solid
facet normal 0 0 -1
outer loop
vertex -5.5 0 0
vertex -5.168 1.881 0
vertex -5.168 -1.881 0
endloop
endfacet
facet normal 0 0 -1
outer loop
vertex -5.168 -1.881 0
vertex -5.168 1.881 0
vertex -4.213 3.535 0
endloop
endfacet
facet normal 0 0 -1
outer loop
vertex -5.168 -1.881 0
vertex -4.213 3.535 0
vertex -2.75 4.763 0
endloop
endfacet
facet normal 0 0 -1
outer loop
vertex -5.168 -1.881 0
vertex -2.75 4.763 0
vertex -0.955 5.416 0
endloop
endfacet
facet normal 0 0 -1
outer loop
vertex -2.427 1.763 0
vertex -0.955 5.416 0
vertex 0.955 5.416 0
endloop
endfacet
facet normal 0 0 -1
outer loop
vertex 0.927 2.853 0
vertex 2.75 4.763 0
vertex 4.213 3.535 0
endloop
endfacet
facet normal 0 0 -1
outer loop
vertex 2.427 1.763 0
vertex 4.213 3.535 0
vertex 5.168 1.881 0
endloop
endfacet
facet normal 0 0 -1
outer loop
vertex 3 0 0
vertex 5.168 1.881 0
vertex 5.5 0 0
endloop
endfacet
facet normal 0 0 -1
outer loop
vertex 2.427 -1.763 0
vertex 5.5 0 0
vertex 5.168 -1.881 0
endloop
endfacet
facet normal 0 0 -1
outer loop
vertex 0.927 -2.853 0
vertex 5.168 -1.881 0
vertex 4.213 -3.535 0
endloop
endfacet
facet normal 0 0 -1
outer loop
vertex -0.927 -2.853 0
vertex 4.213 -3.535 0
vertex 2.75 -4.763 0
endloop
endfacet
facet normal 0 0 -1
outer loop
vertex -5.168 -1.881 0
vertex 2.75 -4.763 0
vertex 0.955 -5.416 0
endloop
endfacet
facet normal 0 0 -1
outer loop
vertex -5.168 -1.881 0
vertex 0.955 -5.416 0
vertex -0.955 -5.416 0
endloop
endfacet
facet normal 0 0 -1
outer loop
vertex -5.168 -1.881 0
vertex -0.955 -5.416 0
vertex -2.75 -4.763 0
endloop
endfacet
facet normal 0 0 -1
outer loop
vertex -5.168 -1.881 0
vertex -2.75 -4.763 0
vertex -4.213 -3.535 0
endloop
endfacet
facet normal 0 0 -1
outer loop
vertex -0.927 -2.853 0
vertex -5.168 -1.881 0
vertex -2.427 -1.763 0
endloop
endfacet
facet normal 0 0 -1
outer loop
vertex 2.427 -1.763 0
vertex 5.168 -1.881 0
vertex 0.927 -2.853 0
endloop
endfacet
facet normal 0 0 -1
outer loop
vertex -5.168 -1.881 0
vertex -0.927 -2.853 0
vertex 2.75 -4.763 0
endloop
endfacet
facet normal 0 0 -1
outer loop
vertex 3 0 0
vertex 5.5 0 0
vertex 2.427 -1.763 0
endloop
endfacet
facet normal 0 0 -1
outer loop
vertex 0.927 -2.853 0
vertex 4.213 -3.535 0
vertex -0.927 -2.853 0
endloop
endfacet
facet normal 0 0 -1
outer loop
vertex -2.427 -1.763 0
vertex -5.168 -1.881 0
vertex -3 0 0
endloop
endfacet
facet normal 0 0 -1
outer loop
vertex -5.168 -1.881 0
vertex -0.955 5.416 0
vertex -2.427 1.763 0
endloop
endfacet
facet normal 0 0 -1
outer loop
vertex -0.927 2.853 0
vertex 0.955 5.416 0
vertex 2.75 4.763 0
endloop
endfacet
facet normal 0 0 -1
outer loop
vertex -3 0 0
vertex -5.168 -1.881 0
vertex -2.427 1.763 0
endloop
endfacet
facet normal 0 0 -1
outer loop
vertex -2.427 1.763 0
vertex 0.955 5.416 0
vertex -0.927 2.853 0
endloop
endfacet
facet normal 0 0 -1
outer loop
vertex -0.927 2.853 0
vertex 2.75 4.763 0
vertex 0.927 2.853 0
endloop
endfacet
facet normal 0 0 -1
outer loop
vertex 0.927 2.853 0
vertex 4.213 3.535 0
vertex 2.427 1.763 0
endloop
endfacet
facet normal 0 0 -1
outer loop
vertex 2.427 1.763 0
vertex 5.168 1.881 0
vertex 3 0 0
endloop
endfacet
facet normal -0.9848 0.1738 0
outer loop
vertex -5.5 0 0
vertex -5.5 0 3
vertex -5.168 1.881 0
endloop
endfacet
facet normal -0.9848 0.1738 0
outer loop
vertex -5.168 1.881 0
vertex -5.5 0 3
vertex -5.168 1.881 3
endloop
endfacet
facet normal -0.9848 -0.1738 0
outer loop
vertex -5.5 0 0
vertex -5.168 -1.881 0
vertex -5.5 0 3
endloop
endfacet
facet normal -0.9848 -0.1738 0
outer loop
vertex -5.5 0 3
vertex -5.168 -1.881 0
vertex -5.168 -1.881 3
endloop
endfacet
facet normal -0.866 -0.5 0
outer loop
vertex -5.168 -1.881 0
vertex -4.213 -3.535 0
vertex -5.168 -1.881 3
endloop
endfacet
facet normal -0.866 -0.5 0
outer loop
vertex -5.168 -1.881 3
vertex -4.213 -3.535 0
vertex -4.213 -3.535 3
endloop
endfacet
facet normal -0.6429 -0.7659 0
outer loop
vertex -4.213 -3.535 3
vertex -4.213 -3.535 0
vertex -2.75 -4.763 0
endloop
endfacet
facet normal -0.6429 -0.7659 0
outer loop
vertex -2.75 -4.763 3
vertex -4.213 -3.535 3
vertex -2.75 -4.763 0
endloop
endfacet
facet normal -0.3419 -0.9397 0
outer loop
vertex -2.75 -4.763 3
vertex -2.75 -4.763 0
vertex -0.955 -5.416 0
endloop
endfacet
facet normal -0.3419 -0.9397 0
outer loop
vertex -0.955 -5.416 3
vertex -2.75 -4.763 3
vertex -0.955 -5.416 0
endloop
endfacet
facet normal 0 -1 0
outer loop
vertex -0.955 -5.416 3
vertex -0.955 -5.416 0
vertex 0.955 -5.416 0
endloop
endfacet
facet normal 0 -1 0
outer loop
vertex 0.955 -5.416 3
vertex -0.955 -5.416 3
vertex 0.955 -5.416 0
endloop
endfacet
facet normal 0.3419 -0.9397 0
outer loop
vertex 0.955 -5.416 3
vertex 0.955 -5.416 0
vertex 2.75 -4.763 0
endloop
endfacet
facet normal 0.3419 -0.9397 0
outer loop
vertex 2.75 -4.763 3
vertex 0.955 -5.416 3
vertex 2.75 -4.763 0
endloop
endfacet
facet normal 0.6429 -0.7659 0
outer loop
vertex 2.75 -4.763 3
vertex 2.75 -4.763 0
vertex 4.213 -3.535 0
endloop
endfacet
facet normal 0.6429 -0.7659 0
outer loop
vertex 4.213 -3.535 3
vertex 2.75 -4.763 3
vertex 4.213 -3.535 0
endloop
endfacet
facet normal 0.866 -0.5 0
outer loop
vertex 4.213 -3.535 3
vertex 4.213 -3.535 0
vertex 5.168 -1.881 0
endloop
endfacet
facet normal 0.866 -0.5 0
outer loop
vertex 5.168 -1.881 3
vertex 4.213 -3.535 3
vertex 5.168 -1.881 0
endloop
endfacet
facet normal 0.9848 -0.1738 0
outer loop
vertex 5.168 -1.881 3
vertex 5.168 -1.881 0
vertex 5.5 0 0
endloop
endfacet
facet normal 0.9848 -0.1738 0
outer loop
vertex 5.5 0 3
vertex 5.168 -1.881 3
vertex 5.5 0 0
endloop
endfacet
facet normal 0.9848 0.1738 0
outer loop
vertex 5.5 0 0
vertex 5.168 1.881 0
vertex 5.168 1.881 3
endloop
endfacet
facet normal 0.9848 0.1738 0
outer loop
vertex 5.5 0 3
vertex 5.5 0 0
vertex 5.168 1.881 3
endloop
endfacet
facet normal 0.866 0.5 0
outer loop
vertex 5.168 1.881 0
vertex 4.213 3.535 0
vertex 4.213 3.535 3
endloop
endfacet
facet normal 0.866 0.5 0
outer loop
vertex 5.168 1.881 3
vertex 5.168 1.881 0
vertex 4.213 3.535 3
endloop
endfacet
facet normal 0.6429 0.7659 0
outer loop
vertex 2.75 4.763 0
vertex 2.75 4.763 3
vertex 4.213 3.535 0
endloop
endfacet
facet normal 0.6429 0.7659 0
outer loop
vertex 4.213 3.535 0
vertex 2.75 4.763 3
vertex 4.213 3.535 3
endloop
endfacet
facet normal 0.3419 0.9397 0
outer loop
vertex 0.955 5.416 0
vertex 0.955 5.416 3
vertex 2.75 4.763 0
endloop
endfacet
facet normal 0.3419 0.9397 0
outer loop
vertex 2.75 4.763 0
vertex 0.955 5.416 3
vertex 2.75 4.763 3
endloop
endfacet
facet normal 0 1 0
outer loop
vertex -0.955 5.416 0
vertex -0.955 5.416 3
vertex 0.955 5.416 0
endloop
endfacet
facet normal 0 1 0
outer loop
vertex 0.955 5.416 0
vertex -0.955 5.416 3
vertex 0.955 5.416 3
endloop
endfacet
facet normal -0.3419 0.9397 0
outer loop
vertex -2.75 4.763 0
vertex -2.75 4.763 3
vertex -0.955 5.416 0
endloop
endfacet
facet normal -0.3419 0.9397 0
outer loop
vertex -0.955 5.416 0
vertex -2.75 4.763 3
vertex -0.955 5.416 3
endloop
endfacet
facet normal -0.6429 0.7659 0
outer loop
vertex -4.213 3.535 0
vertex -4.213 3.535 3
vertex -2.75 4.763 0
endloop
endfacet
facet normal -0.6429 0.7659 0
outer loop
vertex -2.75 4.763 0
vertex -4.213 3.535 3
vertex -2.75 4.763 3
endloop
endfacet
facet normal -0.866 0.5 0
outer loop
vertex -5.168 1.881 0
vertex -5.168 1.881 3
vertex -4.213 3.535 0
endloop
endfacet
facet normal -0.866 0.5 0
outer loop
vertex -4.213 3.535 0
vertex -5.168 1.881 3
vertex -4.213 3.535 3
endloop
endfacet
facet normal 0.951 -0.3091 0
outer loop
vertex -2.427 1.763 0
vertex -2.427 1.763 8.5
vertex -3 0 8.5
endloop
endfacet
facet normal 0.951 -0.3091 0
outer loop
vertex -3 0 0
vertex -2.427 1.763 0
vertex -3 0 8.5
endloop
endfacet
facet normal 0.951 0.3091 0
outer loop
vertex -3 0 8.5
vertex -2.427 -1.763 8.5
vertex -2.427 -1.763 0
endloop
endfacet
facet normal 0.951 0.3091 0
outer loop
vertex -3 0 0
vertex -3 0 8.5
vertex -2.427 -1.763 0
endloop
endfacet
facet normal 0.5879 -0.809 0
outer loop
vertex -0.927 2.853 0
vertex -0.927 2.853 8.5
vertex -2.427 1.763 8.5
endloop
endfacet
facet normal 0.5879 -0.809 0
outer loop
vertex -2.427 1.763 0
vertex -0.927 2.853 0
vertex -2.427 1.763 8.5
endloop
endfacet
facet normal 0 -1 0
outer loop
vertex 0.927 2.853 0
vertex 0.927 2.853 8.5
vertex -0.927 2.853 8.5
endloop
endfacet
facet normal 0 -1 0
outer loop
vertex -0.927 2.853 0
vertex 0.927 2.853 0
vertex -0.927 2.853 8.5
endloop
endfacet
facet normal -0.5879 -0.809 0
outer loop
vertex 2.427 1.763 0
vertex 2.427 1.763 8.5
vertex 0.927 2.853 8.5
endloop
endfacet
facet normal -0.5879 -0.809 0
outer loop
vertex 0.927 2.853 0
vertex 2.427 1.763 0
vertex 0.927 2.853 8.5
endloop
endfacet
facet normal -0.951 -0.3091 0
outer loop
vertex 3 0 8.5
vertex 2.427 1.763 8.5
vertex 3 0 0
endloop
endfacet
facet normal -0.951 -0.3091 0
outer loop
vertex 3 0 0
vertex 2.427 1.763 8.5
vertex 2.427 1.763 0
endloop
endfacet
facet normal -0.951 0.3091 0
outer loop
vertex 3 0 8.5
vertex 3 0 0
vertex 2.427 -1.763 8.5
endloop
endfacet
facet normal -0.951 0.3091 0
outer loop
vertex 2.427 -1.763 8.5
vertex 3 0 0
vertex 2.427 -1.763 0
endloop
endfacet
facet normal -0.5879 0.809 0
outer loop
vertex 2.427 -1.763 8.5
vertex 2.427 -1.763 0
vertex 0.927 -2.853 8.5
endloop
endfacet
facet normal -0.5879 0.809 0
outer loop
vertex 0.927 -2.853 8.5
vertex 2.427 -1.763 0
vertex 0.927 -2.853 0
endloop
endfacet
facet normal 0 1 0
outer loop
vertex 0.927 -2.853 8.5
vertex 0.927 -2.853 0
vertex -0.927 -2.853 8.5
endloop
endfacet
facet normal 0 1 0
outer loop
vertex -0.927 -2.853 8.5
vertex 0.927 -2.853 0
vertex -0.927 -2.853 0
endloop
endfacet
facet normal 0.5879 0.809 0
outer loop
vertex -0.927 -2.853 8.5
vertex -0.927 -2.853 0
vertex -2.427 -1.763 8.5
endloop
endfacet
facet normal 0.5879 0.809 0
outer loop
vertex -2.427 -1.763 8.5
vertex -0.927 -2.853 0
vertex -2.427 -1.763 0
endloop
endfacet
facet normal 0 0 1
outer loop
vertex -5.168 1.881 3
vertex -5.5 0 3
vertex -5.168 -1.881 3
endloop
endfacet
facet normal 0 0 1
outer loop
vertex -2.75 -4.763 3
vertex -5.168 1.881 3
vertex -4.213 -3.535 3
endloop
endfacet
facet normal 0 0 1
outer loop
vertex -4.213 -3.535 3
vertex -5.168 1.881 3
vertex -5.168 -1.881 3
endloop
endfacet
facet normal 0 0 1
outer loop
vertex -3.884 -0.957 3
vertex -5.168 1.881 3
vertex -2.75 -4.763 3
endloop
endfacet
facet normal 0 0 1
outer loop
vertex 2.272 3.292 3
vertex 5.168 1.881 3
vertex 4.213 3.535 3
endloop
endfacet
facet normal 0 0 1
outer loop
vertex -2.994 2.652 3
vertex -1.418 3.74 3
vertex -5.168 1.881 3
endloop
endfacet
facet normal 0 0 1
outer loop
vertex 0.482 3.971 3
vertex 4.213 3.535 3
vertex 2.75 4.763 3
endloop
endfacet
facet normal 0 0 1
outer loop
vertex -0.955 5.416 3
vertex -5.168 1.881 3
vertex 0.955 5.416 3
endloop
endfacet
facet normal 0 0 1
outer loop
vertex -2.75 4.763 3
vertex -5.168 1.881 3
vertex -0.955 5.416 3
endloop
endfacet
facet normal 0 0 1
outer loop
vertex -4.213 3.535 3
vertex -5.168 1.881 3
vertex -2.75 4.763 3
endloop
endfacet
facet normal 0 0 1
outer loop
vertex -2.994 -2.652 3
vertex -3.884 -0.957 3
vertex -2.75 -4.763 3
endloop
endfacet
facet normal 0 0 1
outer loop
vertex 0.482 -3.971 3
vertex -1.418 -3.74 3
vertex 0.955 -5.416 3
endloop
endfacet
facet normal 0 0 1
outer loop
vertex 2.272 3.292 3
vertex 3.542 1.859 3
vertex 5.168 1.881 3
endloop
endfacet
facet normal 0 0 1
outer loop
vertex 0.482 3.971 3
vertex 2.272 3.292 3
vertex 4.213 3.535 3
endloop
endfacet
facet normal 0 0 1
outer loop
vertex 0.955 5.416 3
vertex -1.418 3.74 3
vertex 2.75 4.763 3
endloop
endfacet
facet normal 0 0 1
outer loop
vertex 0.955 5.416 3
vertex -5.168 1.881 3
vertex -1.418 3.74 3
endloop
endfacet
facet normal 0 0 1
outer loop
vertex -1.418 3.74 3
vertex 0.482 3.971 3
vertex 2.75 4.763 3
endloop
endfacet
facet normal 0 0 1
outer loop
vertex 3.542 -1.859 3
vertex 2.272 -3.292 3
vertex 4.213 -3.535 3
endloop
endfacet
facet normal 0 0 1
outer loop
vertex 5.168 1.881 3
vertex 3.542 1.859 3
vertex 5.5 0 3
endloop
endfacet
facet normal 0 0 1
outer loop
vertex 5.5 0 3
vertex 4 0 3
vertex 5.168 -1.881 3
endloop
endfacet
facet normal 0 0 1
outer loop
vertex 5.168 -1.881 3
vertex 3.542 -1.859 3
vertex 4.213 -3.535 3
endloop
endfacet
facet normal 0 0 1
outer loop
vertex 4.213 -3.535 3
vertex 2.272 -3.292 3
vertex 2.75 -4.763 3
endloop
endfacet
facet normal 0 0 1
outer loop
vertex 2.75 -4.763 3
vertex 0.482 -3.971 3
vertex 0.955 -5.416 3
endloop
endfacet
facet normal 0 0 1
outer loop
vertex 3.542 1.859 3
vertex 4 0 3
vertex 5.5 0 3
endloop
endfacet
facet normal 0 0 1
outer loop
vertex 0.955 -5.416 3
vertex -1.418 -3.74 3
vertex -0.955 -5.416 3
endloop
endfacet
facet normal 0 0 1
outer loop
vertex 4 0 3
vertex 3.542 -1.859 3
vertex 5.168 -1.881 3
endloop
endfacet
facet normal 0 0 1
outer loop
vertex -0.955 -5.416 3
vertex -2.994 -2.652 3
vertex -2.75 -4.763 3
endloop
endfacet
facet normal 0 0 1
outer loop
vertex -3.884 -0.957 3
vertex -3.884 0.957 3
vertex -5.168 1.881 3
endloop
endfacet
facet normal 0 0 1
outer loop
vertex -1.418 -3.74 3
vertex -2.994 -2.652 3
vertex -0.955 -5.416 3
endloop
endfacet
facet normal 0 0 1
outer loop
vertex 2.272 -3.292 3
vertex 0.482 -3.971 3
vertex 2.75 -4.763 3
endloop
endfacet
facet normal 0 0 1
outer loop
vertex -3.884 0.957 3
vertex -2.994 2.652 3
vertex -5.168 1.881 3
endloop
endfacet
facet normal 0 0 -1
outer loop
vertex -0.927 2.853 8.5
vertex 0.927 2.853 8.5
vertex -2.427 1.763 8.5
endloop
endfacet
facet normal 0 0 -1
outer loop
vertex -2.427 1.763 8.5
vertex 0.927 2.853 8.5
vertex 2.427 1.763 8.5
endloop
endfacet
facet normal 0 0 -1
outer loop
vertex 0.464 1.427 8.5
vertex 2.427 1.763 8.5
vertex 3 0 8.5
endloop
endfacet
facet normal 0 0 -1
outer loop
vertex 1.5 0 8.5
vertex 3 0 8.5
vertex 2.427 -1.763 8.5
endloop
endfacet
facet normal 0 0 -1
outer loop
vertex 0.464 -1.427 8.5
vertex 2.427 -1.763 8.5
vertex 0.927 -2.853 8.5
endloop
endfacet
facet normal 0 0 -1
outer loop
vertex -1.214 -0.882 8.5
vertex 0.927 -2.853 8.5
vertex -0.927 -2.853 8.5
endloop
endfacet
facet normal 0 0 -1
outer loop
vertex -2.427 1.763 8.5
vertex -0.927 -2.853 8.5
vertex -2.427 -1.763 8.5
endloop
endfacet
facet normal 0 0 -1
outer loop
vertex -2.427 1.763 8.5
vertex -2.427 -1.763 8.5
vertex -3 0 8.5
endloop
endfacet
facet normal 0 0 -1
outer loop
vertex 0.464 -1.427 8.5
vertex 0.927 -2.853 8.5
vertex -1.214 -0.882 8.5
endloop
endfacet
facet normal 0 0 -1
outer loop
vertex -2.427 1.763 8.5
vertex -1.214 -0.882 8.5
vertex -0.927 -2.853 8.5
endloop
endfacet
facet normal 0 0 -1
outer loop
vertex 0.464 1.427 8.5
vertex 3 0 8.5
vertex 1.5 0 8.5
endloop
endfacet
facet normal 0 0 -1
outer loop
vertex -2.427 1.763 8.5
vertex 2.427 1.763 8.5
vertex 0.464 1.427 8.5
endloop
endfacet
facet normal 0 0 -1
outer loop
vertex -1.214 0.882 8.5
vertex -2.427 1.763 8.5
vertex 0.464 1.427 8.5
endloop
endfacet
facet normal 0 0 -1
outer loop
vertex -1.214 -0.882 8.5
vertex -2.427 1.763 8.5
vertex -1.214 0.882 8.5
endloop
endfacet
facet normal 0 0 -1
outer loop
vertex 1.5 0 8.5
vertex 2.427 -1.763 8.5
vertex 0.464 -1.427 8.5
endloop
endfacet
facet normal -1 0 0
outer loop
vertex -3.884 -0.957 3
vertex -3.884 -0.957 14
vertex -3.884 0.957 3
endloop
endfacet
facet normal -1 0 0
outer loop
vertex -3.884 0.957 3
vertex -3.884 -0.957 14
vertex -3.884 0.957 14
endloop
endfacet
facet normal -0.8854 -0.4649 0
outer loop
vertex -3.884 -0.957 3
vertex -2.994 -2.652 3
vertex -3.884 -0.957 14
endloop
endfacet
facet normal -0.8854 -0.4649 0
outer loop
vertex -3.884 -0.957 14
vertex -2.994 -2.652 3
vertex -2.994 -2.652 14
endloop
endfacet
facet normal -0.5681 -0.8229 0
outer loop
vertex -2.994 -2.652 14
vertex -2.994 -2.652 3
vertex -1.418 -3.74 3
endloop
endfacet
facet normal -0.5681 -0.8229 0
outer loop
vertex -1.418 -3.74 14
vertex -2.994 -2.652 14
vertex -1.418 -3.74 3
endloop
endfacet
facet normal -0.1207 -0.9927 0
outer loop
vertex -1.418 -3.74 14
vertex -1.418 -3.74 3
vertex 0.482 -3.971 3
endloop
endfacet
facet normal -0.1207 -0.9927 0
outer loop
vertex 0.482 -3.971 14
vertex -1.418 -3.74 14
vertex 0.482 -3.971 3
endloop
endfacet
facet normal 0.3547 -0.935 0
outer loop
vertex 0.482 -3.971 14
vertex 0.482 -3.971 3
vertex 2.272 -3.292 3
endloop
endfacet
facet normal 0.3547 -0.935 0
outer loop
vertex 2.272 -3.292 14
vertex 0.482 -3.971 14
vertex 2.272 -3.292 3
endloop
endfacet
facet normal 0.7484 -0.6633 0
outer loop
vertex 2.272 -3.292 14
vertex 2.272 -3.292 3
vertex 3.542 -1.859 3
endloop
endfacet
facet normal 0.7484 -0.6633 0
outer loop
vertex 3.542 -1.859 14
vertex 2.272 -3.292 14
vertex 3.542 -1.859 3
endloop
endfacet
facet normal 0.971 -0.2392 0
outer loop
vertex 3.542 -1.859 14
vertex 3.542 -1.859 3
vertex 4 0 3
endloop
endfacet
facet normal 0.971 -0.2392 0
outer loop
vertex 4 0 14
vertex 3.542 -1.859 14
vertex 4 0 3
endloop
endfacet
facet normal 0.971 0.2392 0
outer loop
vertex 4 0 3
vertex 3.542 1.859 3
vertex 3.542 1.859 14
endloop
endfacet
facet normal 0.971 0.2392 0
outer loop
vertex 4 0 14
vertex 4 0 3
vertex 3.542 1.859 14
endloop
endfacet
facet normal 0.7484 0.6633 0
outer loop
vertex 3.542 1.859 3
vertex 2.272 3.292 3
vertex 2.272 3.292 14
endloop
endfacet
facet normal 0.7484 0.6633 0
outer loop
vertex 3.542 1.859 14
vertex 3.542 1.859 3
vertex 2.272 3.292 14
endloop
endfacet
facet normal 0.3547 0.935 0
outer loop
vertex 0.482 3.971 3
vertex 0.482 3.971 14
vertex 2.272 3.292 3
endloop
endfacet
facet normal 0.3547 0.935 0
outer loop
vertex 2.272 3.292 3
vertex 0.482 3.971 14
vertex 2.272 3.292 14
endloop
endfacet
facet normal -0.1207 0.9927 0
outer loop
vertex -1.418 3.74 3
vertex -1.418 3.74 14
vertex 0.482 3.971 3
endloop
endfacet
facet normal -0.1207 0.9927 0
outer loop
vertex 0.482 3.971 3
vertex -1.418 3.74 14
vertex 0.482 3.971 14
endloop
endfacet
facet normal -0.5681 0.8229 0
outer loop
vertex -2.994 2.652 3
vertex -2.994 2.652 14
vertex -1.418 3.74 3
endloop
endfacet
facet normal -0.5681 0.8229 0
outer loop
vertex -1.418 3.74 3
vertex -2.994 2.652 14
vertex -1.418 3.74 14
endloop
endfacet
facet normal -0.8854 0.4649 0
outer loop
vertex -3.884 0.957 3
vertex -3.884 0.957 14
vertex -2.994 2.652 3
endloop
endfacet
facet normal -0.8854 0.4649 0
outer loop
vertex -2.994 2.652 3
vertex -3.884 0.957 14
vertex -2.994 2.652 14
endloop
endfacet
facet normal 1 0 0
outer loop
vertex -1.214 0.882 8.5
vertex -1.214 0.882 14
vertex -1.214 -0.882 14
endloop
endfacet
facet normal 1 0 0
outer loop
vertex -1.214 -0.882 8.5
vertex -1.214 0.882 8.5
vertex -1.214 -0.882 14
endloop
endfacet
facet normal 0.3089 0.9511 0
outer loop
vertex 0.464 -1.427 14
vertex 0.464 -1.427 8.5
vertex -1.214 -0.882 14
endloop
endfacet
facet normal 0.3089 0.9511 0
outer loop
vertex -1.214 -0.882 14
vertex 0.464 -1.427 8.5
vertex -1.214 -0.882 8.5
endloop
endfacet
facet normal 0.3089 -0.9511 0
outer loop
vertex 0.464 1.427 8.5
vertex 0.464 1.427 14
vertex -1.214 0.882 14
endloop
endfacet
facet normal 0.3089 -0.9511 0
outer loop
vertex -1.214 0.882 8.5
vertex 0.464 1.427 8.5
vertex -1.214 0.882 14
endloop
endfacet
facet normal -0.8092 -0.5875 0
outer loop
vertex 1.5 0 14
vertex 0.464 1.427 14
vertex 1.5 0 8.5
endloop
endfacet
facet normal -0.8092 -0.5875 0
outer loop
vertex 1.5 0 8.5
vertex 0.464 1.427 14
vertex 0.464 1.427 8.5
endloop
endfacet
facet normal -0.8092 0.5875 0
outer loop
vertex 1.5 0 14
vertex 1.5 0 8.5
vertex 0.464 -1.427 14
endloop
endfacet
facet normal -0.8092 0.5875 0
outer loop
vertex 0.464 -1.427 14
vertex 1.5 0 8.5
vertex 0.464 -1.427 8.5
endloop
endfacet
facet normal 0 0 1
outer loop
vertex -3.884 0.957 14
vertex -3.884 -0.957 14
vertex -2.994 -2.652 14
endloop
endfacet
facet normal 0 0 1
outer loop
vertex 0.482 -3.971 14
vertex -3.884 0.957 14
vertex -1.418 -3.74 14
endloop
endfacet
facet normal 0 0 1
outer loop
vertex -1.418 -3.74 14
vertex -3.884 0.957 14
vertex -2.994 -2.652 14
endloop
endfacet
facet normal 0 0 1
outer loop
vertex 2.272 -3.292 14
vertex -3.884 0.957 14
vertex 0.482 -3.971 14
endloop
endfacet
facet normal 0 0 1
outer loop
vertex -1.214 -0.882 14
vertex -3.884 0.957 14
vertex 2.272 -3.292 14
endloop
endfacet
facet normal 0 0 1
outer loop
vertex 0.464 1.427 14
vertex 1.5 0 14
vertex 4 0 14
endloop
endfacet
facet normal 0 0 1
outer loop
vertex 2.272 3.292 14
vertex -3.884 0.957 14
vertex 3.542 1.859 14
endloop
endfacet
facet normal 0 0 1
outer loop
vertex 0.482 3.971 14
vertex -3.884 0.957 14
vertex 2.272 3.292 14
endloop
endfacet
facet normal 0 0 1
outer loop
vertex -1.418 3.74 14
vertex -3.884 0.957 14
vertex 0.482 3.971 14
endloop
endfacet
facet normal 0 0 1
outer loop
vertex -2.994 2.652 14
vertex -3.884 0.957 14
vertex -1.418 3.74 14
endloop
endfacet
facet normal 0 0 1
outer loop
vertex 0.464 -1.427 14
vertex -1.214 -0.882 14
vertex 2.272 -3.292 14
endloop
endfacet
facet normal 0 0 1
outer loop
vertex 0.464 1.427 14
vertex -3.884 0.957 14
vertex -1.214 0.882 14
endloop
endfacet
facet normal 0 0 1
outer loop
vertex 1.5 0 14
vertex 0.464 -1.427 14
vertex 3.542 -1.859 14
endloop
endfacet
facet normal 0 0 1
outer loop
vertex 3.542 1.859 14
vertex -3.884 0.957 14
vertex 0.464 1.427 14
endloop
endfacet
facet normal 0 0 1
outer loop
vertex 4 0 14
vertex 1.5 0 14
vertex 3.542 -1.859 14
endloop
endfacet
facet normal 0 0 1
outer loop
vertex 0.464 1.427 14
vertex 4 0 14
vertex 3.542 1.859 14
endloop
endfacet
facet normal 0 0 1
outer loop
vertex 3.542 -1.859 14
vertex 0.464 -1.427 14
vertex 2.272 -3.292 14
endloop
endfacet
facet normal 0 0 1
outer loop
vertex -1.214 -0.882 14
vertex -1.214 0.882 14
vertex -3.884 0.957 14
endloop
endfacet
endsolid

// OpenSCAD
difference() {
	union() {
		translate([0, 0, 1.5]) {
			cylinder(r=5.5,h=3,center=true);
		}
		translate([0,0,7]) {
			cylinder(r=4,h=14,center=true);
		}
	}

	cylinder(r=1.5,h=30,center=true);
	translate([0,0,4]) {
		cylinder(r=3,h=9, center=true);
	}
}
